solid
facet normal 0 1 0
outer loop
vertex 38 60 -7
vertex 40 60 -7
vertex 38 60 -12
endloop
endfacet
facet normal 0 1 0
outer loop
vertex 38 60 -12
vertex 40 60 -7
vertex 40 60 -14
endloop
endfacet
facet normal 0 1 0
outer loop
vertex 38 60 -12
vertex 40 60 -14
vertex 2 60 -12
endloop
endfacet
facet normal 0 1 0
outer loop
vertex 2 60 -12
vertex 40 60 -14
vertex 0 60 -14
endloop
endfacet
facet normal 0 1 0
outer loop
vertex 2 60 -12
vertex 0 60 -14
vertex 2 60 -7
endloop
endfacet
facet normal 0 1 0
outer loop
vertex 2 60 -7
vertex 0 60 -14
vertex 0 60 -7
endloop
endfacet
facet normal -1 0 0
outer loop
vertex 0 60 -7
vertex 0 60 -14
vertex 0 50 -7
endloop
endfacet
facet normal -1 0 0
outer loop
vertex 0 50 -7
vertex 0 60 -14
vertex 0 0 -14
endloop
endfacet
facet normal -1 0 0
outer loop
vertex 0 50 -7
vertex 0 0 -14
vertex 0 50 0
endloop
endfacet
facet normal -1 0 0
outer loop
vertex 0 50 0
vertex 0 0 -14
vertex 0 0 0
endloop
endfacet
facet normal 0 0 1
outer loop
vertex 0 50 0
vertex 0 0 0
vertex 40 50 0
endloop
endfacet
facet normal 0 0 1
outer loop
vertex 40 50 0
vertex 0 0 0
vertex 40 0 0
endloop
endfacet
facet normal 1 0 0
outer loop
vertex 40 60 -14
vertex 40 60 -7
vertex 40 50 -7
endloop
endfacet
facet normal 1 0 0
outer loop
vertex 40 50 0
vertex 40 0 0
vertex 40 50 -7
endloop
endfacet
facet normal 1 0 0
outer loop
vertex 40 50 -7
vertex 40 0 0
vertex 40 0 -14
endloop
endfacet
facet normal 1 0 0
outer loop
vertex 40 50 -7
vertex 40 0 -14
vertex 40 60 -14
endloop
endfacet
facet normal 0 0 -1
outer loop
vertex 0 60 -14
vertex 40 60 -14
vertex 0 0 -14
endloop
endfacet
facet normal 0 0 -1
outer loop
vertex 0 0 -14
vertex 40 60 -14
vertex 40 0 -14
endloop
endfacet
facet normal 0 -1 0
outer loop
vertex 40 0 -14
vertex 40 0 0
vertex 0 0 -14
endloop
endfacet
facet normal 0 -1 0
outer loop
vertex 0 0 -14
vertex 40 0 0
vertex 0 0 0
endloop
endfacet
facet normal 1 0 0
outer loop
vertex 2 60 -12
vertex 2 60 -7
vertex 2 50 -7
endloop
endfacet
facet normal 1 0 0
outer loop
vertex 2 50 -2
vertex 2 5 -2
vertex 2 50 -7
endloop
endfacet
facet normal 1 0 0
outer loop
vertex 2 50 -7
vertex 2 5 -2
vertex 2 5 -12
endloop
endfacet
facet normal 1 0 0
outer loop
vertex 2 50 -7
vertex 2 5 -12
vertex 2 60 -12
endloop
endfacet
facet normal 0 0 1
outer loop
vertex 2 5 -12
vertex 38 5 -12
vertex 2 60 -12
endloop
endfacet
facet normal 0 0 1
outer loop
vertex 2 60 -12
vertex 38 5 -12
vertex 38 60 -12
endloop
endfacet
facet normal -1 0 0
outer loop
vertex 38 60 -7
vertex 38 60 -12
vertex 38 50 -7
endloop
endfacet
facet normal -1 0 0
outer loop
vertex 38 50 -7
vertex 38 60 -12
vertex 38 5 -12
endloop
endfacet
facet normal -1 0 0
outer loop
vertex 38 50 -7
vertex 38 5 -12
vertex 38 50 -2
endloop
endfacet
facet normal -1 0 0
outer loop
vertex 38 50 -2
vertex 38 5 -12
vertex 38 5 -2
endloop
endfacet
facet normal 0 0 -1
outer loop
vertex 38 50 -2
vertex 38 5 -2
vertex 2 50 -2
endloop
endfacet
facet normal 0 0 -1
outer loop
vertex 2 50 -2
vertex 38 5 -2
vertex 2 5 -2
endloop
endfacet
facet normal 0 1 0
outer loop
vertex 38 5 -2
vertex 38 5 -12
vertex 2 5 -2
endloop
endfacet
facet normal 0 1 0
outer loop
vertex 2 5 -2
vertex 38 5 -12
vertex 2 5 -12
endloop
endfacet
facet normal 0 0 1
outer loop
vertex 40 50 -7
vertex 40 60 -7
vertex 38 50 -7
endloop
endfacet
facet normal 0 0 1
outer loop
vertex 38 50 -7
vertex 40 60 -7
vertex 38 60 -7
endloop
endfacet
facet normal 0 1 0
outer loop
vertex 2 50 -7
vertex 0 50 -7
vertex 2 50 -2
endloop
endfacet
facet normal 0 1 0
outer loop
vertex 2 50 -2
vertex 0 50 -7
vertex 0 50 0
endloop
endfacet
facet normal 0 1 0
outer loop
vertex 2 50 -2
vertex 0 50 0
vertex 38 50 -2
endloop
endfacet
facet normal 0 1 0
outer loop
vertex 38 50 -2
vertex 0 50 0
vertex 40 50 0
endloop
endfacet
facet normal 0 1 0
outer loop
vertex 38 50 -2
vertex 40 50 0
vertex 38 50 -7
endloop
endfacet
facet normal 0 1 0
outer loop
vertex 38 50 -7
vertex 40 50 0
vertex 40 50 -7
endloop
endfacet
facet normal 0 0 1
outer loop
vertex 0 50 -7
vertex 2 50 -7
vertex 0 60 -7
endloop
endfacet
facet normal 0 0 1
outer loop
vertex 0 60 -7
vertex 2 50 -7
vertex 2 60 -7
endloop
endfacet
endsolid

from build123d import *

# Parameters (mm, degrees)
SKETCH_1_W          = 40
SKETCH_1_H          = 14
EXTRUDE_1_DEPTH     = 60
SKETCH_6_W          = 36
SKETCH_6_H          = 10
CUT_EXTRUDE_2_DEPTH = 55
SKETCH_7_W          = 40
SKETCH_7_H          = 10
CUT_EXTRUDE_3_DEPTH = 7


with BuildPart() as part:
    # 草图1 → 凸台-拉伸1 (new body)
    with BuildSketch(Plane(origin=(0, 0, 0), x_dir=(1, 0, 0), z_dir=(0, 1, 0))):
        with Locations((20, 7)):
            Rectangle(SKETCH_1_W, SKETCH_1_H)
    extrude(amount=EXTRUDE_1_DEPTH)

    # 草图6 → 切除-拉伸2 (cut)
    with BuildSketch(Plane(origin=(0, 60, 0), x_dir=(1, 0, 0), z_dir=(0, 1, 0))):
        with Locations((20, 7)):
            Rectangle(SKETCH_6_W, SKETCH_6_H)
    extrude(amount=-CUT_EXTRUDE_2_DEPTH, mode=Mode.SUBTRACT)

    # 草图7 → 切除-拉伸3 (cut)
    with BuildSketch(Plane.XY):
        with Locations((20, 55)):
            Rectangle(SKETCH_7_W, SKETCH_7_H)
    extrude(amount=-CUT_EXTRUDE_3_DEPTH, mode=Mode.SUBTRACT)


solid = part.part
